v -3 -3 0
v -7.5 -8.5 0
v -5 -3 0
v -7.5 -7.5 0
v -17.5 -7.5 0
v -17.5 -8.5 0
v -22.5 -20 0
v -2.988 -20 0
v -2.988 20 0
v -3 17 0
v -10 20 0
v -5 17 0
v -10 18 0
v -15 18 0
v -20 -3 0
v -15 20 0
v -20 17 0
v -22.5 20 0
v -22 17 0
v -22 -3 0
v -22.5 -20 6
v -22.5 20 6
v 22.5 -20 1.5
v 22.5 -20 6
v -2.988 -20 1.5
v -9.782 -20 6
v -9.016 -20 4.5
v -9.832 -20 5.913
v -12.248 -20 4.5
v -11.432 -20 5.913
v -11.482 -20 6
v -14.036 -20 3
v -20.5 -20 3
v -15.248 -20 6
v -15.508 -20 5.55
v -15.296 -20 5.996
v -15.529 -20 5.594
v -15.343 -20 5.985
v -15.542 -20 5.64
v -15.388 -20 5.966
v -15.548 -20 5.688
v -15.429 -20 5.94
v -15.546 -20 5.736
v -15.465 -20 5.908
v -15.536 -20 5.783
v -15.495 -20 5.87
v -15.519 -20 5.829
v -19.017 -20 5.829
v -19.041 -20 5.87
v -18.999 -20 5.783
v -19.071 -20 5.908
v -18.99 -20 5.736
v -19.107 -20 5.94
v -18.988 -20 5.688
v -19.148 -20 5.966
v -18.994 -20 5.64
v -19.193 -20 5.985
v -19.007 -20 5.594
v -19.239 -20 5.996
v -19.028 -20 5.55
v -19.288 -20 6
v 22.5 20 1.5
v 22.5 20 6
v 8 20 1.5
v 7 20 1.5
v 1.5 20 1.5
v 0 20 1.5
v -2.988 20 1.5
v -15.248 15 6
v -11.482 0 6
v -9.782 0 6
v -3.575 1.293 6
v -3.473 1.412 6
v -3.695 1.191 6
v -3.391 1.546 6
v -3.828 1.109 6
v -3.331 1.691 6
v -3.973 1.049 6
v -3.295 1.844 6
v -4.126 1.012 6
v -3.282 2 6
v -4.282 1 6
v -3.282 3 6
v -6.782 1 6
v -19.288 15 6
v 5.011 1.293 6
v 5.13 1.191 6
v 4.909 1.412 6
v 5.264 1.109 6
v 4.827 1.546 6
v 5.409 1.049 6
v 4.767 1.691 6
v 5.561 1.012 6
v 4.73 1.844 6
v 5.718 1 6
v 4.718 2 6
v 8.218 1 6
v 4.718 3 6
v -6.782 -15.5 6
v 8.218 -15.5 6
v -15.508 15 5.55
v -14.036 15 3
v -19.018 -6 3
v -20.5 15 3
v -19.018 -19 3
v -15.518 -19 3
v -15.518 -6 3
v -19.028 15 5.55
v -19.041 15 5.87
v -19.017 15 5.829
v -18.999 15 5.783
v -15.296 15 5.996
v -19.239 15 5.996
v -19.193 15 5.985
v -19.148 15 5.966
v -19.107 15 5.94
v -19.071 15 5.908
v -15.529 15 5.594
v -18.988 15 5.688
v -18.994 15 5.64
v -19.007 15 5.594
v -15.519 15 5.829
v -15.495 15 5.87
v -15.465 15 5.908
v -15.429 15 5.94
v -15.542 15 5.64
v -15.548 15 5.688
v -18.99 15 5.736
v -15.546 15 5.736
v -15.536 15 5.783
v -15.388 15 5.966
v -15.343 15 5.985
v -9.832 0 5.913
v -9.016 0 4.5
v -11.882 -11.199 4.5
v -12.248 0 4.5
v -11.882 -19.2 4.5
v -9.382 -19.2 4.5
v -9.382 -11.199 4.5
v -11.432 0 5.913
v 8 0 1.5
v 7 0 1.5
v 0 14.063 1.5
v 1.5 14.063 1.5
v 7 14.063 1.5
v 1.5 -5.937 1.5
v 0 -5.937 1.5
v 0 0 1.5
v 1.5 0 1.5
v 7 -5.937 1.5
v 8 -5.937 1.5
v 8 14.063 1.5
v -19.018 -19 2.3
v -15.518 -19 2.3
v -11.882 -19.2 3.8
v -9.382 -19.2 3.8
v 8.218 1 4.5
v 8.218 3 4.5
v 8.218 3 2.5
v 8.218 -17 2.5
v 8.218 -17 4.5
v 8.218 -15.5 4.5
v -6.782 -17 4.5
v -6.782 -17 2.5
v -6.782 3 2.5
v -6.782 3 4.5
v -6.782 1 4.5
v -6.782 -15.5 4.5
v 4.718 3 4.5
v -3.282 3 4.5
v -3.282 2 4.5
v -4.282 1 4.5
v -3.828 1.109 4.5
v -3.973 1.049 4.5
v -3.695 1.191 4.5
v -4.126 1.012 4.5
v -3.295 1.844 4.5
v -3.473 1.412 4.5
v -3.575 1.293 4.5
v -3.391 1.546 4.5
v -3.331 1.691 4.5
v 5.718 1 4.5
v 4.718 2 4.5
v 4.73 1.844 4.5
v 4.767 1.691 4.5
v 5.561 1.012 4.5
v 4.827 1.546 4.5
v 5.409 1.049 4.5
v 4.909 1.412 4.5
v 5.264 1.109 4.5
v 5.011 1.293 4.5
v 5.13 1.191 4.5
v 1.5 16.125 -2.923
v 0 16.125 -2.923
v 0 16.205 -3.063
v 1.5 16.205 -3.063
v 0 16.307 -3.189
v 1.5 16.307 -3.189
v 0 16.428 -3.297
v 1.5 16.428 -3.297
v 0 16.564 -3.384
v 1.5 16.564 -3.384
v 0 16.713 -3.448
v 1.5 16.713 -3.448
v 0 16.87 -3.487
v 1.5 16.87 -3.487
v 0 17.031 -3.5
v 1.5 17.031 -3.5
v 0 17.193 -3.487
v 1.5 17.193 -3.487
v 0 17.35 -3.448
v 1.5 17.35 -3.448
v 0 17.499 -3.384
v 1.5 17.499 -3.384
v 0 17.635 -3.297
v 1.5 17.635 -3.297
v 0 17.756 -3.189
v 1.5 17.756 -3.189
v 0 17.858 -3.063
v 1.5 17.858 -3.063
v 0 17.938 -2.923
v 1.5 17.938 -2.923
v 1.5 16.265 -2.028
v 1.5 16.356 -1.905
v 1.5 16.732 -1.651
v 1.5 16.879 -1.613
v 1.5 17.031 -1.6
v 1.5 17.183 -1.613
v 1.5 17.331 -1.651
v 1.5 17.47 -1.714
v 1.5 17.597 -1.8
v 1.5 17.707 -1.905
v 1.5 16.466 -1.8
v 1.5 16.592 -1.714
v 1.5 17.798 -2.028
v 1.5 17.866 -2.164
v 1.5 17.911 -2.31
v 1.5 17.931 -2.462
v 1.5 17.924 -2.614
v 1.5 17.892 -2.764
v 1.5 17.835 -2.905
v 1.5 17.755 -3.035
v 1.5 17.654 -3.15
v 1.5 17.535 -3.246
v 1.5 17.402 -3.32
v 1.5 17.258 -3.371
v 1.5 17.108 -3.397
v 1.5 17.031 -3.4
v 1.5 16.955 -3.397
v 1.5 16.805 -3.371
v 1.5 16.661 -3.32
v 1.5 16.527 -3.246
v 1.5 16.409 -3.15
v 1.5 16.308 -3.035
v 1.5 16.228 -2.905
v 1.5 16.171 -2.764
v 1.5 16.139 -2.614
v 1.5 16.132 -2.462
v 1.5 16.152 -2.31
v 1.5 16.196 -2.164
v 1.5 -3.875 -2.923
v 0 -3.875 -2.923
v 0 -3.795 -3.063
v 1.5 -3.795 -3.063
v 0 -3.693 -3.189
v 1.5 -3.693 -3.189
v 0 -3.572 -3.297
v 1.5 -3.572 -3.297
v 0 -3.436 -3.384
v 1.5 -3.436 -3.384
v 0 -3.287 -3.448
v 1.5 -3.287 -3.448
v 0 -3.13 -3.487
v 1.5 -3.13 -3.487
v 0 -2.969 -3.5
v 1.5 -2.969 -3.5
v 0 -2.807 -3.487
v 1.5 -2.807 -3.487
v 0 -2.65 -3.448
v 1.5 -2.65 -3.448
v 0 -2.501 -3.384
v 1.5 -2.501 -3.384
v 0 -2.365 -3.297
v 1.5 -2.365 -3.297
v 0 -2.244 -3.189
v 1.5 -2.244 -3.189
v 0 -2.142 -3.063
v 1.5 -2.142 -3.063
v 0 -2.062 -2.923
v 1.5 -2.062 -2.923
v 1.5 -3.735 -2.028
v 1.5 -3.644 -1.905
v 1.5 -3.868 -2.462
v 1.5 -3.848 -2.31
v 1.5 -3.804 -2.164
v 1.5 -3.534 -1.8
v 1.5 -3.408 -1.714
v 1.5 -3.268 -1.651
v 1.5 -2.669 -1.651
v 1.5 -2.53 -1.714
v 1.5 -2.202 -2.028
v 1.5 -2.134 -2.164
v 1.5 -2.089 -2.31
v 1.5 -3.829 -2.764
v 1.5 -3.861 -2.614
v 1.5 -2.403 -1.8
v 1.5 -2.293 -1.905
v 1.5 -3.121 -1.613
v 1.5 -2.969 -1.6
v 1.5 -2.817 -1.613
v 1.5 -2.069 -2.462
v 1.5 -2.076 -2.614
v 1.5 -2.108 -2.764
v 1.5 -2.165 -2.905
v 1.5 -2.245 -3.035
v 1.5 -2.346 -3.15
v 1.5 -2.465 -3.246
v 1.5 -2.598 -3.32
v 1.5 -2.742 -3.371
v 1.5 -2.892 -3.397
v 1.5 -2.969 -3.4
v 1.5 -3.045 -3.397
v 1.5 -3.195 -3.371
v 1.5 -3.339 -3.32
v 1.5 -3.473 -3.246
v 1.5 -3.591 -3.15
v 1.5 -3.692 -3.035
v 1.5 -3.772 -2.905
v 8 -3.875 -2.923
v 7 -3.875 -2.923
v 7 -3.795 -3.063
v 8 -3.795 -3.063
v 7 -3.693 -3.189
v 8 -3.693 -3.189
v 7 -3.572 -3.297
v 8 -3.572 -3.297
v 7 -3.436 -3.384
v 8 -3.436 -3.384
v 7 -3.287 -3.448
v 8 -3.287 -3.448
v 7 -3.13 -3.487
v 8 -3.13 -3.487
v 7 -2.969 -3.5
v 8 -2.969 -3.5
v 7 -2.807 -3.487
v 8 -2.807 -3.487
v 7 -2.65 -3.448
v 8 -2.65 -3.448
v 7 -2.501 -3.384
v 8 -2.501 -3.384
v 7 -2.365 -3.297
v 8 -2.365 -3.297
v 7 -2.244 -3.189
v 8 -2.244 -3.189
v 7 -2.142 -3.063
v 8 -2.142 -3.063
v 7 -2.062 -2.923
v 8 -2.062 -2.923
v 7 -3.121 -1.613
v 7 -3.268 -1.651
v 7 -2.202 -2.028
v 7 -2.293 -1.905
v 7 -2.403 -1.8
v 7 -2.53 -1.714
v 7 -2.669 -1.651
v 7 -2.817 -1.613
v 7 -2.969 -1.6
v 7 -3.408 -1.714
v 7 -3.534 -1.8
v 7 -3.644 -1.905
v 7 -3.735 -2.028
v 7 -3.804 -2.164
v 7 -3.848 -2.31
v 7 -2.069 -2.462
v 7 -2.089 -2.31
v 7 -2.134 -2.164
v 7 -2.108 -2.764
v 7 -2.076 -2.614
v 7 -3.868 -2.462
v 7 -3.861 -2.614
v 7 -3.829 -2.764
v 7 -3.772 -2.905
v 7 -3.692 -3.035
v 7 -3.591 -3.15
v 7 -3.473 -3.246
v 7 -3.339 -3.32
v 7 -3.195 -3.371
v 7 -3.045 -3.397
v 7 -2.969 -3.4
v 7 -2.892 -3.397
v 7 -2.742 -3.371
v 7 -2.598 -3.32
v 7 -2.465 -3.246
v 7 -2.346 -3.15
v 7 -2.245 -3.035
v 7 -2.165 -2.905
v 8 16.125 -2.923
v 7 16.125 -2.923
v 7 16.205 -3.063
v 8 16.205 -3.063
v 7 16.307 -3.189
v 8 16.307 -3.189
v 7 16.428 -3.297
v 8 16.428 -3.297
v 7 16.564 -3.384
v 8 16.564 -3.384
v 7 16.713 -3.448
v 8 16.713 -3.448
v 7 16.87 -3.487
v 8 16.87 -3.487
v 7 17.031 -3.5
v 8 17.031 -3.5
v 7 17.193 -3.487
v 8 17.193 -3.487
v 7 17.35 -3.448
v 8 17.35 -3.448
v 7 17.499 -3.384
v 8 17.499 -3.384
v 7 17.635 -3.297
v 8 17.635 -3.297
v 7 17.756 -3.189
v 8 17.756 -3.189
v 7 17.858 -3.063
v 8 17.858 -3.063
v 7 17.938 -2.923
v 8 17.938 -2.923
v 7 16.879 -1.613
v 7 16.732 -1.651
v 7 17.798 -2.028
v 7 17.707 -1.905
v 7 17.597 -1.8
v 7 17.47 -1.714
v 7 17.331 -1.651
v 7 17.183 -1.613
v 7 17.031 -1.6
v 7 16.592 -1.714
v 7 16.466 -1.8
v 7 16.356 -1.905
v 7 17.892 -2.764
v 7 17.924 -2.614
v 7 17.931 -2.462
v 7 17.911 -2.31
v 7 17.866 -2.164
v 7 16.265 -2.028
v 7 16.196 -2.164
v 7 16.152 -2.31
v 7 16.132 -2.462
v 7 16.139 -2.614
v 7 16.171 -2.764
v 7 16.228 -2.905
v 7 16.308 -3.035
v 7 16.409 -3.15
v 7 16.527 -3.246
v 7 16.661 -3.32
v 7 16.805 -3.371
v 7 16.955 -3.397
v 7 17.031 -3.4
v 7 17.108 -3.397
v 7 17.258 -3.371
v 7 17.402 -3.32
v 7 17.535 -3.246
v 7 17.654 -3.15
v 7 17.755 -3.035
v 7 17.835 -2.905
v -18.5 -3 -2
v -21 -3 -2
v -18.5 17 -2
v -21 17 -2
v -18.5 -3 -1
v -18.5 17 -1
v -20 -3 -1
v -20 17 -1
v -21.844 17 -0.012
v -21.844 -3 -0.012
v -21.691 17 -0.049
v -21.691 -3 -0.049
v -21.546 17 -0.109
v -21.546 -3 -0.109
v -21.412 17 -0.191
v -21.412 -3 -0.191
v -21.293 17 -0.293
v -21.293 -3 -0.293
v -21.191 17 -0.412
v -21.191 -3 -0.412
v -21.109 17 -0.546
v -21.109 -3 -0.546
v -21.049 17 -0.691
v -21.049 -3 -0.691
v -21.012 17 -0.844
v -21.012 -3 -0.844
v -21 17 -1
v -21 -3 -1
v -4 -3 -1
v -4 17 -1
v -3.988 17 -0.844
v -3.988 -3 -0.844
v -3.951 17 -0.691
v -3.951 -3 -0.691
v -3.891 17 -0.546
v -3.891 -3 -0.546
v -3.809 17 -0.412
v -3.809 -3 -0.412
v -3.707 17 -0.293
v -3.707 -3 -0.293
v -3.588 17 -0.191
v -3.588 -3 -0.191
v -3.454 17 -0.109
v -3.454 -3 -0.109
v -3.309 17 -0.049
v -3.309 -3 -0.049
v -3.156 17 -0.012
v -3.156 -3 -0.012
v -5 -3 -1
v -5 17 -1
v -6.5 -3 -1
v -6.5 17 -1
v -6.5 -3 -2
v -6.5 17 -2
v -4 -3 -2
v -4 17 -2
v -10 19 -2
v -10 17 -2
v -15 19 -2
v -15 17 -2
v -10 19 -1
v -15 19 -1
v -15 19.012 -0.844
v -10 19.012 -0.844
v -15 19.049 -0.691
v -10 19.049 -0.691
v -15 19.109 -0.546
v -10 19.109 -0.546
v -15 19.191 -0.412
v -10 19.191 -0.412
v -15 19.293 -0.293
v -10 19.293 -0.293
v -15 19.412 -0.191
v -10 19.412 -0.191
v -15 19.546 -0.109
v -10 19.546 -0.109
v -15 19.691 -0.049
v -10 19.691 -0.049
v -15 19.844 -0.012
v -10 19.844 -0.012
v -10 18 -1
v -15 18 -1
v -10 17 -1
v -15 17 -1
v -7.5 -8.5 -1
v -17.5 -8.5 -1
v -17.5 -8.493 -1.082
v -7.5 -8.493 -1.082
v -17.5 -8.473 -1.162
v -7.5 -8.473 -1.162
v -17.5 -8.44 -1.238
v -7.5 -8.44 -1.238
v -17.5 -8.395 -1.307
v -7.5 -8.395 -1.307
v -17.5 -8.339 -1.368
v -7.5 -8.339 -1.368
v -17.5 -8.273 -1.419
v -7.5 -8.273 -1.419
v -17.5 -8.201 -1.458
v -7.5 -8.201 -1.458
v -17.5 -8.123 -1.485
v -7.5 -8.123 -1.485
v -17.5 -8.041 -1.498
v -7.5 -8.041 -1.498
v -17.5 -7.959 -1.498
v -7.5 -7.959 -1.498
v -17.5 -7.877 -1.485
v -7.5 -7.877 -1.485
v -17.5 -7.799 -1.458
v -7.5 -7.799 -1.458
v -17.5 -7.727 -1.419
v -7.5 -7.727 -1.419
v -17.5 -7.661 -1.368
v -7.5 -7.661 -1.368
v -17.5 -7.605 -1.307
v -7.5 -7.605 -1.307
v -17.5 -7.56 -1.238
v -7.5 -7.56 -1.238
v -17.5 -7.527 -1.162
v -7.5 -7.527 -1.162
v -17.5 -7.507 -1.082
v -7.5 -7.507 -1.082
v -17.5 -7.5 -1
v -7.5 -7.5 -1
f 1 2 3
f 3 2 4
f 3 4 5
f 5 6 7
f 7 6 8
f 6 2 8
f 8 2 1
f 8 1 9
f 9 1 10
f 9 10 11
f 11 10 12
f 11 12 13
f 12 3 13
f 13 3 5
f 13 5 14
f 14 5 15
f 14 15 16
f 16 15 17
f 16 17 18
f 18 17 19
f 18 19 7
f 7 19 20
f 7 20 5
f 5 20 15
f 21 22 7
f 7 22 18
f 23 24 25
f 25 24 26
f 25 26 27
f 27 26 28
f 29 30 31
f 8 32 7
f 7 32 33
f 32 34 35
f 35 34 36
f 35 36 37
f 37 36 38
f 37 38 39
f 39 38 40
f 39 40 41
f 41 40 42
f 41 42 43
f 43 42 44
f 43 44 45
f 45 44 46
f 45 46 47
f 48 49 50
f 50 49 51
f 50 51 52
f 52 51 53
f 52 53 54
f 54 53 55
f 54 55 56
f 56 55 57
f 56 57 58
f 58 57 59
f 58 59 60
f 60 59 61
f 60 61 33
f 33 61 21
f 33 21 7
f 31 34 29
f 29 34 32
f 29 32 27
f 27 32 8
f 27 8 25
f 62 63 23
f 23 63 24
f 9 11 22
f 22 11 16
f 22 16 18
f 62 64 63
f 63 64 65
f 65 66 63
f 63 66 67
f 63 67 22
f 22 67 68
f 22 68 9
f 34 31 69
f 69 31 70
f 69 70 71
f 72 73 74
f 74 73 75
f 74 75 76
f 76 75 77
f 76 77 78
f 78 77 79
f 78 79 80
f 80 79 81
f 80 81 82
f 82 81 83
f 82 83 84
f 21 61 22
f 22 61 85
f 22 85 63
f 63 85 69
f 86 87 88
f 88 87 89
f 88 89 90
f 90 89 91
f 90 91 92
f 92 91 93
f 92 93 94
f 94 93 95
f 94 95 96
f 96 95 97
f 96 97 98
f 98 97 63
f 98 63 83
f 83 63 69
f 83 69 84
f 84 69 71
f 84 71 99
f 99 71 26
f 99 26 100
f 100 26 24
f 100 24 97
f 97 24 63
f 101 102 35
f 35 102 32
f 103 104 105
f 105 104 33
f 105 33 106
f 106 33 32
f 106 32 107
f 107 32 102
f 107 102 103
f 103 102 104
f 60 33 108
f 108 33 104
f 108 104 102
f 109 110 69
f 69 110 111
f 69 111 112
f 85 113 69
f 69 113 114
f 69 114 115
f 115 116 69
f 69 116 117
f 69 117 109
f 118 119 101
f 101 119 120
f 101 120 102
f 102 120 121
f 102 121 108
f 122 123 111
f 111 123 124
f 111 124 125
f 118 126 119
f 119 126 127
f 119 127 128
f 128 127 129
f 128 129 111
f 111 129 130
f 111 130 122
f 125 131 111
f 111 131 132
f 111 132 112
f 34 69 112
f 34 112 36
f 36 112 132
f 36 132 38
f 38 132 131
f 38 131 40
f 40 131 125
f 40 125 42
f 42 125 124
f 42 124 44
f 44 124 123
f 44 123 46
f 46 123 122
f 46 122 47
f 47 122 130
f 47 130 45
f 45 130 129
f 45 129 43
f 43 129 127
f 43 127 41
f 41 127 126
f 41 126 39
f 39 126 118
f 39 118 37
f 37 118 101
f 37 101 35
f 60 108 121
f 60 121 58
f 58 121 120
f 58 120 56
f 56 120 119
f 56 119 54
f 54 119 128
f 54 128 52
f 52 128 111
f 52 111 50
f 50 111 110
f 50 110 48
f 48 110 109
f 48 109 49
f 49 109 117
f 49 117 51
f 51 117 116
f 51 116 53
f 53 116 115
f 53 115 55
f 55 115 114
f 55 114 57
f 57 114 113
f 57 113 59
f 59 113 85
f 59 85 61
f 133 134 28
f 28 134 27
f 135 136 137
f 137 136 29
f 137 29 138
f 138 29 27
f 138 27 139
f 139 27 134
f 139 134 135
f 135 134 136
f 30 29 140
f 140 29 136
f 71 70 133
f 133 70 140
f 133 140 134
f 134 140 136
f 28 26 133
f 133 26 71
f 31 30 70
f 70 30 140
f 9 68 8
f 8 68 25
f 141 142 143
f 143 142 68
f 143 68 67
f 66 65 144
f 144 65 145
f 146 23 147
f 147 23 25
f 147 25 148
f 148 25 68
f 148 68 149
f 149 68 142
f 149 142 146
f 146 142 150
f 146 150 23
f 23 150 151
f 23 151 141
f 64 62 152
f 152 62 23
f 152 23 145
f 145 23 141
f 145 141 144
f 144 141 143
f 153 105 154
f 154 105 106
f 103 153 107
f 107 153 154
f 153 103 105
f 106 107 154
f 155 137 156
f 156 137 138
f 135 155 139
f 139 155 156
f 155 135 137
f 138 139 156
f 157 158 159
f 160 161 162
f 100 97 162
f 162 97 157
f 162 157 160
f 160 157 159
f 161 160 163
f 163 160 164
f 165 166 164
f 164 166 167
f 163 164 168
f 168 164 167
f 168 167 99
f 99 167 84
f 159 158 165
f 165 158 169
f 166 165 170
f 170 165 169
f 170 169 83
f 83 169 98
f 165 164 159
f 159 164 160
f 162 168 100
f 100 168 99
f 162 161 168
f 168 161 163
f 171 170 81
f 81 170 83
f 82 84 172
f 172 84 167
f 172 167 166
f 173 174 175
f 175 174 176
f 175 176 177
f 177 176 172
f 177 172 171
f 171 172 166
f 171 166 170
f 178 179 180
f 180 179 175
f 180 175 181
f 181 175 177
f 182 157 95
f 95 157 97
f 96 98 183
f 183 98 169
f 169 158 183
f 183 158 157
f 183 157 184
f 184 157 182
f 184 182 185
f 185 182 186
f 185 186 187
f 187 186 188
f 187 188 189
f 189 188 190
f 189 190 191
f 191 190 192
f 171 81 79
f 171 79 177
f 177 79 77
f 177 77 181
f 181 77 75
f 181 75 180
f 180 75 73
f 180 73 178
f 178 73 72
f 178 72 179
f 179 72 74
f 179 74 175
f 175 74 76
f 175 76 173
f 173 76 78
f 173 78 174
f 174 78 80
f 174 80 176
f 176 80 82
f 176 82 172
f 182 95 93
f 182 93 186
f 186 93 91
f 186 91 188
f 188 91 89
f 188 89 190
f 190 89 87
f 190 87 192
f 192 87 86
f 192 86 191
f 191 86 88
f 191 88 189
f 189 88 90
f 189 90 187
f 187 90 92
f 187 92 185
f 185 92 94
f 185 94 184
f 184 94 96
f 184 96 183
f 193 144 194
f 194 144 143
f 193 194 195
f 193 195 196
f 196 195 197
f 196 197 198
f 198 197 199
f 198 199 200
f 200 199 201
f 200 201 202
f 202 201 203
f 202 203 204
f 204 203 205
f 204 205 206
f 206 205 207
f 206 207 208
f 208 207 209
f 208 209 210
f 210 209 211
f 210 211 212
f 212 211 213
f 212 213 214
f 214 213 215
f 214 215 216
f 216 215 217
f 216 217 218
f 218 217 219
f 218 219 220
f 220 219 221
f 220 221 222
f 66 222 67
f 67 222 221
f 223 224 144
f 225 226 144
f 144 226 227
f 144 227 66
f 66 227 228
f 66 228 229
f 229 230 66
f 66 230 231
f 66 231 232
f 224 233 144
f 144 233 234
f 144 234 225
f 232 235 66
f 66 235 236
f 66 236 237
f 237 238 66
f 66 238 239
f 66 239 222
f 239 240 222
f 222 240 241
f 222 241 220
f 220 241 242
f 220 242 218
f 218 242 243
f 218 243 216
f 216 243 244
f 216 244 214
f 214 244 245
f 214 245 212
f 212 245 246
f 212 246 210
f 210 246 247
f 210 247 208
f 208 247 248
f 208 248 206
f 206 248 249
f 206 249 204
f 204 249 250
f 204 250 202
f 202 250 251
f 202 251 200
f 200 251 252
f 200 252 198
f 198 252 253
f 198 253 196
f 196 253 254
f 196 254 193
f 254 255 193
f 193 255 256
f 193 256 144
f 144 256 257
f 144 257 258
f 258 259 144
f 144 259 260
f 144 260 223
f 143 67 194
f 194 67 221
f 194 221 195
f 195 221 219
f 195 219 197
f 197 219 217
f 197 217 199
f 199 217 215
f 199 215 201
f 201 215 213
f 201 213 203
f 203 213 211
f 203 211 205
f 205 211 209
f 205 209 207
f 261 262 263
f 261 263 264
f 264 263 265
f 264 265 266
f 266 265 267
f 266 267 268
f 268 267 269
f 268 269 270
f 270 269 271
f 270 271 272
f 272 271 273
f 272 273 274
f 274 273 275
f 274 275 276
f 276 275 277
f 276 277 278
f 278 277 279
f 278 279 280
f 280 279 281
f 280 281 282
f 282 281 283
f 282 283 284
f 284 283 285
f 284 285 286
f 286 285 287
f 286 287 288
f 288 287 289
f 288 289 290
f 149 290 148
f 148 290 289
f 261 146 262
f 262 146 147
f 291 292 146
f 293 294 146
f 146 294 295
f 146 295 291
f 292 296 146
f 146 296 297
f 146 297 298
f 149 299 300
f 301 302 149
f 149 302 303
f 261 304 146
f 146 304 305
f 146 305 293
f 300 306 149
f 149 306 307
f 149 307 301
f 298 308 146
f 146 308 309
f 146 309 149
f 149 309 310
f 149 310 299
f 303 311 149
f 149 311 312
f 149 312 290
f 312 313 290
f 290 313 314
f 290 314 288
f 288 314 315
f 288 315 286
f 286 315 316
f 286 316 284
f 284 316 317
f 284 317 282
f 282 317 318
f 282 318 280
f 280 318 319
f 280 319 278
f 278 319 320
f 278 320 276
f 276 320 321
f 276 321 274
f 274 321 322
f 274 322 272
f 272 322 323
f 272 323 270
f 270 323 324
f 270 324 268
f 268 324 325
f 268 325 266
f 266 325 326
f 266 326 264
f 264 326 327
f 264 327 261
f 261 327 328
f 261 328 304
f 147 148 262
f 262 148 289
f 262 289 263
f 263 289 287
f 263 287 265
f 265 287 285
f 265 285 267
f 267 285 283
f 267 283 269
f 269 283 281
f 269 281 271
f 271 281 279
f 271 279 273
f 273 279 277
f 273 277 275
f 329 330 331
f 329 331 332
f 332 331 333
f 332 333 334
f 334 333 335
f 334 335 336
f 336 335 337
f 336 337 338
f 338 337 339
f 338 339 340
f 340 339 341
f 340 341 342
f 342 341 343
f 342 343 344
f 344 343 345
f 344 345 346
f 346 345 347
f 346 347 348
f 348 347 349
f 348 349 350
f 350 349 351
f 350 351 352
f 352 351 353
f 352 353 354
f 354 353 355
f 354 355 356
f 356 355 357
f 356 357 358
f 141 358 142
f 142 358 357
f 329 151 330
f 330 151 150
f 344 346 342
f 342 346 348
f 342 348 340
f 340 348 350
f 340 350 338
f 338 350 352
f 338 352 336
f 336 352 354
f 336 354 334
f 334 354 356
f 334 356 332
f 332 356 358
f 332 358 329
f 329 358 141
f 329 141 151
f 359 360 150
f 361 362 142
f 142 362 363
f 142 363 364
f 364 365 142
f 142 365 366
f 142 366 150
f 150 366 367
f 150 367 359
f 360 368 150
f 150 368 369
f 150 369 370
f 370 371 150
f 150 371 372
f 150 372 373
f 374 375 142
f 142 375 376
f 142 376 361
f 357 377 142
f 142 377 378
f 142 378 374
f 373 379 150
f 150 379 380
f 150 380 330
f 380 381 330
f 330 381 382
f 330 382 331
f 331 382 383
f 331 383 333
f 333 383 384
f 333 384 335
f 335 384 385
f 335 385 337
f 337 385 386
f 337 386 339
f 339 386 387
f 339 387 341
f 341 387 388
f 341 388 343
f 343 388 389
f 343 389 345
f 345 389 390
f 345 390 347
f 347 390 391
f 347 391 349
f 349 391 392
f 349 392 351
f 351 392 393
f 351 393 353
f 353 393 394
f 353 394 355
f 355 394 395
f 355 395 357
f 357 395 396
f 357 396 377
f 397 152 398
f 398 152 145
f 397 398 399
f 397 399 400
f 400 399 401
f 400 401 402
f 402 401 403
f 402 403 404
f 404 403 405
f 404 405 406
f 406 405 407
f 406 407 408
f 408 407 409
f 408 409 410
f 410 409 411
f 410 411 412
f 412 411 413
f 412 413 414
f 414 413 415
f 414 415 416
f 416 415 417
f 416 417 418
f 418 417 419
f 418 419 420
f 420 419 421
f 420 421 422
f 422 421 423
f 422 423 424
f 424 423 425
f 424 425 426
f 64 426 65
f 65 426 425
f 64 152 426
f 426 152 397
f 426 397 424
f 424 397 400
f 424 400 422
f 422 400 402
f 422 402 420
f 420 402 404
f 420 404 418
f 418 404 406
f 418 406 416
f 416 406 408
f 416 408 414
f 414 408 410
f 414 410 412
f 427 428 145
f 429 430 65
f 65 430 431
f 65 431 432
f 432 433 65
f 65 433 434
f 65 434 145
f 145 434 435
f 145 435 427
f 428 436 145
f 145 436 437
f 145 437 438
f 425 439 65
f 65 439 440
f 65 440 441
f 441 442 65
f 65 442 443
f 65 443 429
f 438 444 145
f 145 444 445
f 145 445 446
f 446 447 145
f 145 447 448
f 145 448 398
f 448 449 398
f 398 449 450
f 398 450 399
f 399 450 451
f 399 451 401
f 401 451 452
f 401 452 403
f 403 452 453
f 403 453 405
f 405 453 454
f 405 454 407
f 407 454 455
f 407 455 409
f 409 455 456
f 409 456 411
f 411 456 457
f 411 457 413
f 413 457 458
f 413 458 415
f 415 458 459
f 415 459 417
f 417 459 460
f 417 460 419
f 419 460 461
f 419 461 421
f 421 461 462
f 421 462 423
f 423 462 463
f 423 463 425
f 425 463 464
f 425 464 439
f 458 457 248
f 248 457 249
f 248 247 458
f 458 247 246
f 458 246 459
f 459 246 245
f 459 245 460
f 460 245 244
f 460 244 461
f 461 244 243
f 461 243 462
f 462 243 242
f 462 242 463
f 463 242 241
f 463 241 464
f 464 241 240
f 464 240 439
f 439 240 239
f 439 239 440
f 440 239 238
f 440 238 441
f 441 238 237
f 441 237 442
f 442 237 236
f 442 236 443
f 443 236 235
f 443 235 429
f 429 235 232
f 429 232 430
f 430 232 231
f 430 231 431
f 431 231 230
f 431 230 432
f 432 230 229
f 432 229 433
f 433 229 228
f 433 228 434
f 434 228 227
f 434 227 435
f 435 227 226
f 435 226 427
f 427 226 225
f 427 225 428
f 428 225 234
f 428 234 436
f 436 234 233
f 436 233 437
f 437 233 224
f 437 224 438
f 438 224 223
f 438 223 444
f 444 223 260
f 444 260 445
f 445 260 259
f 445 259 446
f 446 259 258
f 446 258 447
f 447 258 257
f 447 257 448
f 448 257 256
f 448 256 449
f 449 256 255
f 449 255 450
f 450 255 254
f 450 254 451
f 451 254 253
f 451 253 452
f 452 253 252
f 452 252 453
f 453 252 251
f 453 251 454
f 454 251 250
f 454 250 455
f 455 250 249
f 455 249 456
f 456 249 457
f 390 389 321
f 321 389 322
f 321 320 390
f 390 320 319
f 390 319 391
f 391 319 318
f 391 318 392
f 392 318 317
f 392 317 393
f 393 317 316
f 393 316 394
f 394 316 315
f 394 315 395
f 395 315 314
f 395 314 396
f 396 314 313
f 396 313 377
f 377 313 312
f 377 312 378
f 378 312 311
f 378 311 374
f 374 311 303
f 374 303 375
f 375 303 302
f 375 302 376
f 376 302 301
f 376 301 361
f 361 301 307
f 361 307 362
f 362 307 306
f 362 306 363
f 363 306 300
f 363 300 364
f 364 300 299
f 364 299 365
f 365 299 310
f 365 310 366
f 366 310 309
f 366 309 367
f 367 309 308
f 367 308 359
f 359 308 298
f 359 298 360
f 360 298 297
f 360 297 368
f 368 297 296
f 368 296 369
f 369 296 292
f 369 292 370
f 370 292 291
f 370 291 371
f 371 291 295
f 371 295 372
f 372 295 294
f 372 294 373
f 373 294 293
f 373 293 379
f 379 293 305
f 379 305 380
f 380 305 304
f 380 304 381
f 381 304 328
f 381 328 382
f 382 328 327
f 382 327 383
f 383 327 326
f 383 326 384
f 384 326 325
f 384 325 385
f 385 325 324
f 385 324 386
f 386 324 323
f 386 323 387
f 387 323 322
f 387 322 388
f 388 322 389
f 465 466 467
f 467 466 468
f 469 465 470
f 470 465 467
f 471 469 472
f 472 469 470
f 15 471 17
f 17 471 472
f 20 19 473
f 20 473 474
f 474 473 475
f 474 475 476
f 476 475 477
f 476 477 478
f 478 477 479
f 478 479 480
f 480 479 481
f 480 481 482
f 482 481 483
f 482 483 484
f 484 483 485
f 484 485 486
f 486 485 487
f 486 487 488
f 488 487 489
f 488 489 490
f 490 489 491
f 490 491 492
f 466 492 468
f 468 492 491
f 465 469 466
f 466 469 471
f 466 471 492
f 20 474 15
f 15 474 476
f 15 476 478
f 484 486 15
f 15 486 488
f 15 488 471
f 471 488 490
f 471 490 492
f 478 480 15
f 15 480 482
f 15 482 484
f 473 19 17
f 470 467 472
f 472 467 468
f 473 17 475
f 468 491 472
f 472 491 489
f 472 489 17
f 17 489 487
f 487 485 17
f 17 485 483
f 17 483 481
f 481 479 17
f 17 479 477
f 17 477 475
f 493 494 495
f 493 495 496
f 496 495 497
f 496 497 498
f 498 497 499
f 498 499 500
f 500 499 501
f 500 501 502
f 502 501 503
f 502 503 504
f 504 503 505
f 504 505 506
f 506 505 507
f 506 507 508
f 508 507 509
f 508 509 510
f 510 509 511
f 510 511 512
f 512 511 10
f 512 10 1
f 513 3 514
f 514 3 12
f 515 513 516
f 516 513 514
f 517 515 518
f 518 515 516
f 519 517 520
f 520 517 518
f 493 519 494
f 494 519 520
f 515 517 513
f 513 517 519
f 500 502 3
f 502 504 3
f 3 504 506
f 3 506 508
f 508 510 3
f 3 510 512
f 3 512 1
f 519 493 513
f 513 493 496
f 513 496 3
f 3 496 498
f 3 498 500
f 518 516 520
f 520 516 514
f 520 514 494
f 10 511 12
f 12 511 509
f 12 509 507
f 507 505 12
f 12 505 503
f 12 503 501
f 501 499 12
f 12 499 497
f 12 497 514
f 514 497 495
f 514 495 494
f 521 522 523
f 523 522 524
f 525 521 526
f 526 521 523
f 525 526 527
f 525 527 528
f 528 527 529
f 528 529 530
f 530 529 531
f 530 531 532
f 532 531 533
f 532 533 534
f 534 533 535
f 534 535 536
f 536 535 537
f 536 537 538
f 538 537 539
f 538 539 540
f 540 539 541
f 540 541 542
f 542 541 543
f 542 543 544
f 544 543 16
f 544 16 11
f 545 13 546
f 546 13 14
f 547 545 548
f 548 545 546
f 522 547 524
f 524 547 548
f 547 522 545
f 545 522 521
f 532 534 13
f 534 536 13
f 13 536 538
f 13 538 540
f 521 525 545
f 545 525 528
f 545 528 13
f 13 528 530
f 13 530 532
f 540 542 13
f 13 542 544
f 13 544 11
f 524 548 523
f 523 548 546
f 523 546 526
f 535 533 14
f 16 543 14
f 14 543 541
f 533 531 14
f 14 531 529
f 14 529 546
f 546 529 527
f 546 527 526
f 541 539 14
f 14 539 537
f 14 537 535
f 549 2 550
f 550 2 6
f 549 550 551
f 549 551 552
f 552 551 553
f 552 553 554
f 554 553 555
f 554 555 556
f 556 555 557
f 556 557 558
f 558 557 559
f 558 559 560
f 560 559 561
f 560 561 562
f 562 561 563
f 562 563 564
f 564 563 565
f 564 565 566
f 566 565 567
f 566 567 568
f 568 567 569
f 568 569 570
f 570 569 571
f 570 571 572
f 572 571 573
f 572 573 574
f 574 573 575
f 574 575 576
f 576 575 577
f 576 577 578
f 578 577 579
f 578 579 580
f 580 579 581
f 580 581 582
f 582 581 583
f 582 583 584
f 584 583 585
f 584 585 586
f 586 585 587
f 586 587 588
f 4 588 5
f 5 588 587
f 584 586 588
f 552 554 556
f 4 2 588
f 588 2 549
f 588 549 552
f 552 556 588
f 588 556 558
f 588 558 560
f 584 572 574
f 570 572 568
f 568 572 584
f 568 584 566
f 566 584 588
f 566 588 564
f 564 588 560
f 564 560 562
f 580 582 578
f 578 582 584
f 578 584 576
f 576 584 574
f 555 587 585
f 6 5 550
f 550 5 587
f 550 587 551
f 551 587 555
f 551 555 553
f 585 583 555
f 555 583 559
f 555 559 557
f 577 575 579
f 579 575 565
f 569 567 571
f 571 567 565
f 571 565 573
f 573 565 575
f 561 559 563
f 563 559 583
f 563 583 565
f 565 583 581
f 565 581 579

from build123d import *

# Parameters (mm, degrees)
SKETCH1_W           = 45
SKETCH1_H           = 40
BOSS_EXTRUDE1_DEPTH = 6
CUT_EXTRUDE1_DEPTH  = 35
FILLET4_R           = 0.3
CUT_EXTRUDE4_DEPTH  = 20
CHAMFER1_SIZE       = 0.1
SKETCH10_W          = 25.487766081
SKETCH10_H          = 1.5
CUT_EXTRUDE8_DEPTH  = 47.284446632
CUT_EXTRUDE9_DEPTH  = 1.75
CUT_EXTRUDE10_DEPTH = 1.25
SKETCH13_W          = 15
SKETCH13_H          = 20
CUT_EXTRUDE11_DEPTH = 3.5
SKETCH14_W          = 15
SKETCH14_H          = 1.5
SKETCH14_W_2        = 3.5
SKETCH14_H_2        = 2
BOSS_EXTRUDE2_DEPTH = 1.5
FILLET5_R           = 1
SKETCH15_R          = 0.9
BOSS_EXTRUDE3_DEPTH = 1.5
BOSS_EXTRUDE4_START = 7
SKETCH15_3_R        = 0.9
BOSS_EXTRUDE4_DEPTH = 1
SKETCH15_4_R        = 0.9
BOSS_EXTRUDE5_DEPTH = 8
BOSS_EXTRUDE6_START = -3
BOSS_EXTRUDE6_DEPTH = 20
BOSS_EXTRUDE7_DEPTH = 2.5
BOSS_EXTRUDE8_DEPTH = 5


with BuildPart() as part:
    # Sketch1 → Boss-Extrude1 (new body)
    with BuildSketch(Plane.XY):
        Rectangle(SKETCH1_W, SKETCH1_H)
    extrude(amount=BOSS_EXTRUDE1_DEPTH)

    # Sketch2 → Cut-Extrude1 (cut)
    with BuildSketch(Plane.XZ.offset(20)):
        Polygon((-15.767949192, 6), (-14.035898385, 3), (-20.5, 3), (-18.767949192, 6), align=None)
    extrude(amount=-CUT_EXTRUDE1_DEPTH, mode=Mode.SUBTRACT)

    # Fillet4
    fillet4_edges = [part.edges().sort_by_distance(p)[0] for p in [
        (-18.767949192, -2.5, 6),
        (-15.767949192, -2.5, 6),
    ]]
    fillet(fillet4_edges, radius=FILLET4_R)

    # Sketch5 → Cut-Extrude4 (cut)
    with BuildSketch(Plane.XZ.offset(20)):
        Polygon((-9.882308546, 6), (-9.016283143, 4.5), (-12.24833395, 4.5), (-11.382308546, 6), align=None)
    extrude(amount=-CUT_EXTRUDE4_DEPTH, mode=Mode.SUBTRACT)

    # Chamfer1
    chamfer1_edges = [part.edges().sort_by_distance(p)[0] for p in [
        (-11.382308546, -10, 6),
        (-9.882308546, -10, 6),
    ]]
    chamfer(chamfer1_edges, length=CHAMFER1_SIZE)

    # Sketch10 → Cut-Extrude8 (cut, through all)
    with BuildSketch(Plane.XZ.offset(20)):
        with Locations((9.756116959, 0.75)):
            Rectangle(SKETCH10_W, SKETCH10_H)
    extrude(amount=-CUT_EXTRUDE8_DEPTH, mode=Mode.SUBTRACT)

    # Sketch11 → Cut-Extrude9 (cut, symmetric)
    with BuildSketch(Plane(origin=(-17.267949192, 0, 0), x_dir=(0, 0, -1), z_dir=(1, 0, 0))):
        Polygon((-3, -19), (-3, -6), (-2.3, -19), align=None)
    extrude(amount=CUT_EXTRUDE9_DEPTH, both=True, mode=Mode.SUBTRACT)

    # Sketch12 → Cut-Extrude10 (cut, symmetric)
    with BuildSketch(Plane(origin=(-10.632308546, 0, 0), x_dir=(0, 0, -1), z_dir=(1, 0, 0))):
        Polygon((-4.5, -19.2), (-4.5, -11.198963388), (-3.8, -19.2), align=None)
    extrude(amount=CUT_EXTRUDE10_DEPTH, both=True, mode=Mode.SUBTRACT)

    # Sketch13 → Cut-Extrude11 (cut)
    with BuildSketch(Plane.XY.offset(6)):
        with Locations((0.717691454, -7)):
            Rectangle(SKETCH13_W, SKETCH13_H)
    extrude(amount=-CUT_EXTRUDE11_DEPTH, mode=Mode.SUBTRACT)

    # Sketch14 → Boss-Extrude2 (add)
    with BuildSketch(Plane.XY.offset(6)):
        with Locations((0.717691454, -16.25)):
            Rectangle(SKETCH14_W, SKETCH14_H)
        with Locations((-5.032308546, 2)):
            Rectangle(SKETCH14_W_2, SKETCH14_H_2)
        with Locations((6.467691454, 2)):
            Rectangle(SKETCH14_W_2, SKETCH14_H_2)
    extrude(amount=-BOSS_EXTRUDE2_DEPTH)

    # Fillet5
    fillet5_edges = [part.edges().sort_by_distance(p)[0] for p in [
        (-3.282308546, 1, 5.25),
        (4.717691454, 1, 5.25),
    ]]
    fillet(fillet5_edges, radius=FILLET5_R)

    # Sketch15 → Boss-Extrude3 (add)
    # profile 1 of 2: a face of its own
    with BuildSketch(Plane(origin=(0, 0, 0), x_dir=(0, 0, -1), z_dir=(1, 0, 0))):
        with BuildLine():
            Line((2.922618262, 16.125083661), (-1.5, 14.062782897))
            Line((-1.5, 14.062782897), (-1.5, 20))
            Line((-1.5, 20), (2.922618262, 17.937699235))
            ThreePointArc((2.922618262, 17.937699235), (3.5, 17.031391448), (2.922618262, 16.125083661))
        make_face()
        with Locations((2.5, 17.031391448)):
            Circle(SKETCH15_R, mode=Mode.SUBTRACT)
    # profile 2 of 2: a face of its own
    with BuildSketch(Plane(origin=(0, 0, 0), x_dir=(0, 0, -1), z_dir=(1, 0, 0))):
        with BuildLine():
            ThreePointArc((2.922618262, -2.062300765), (3.5, -2.968608552), (2.922618262, -3.874916339))
            Line((2.922618262, -3.874916339), (-1.5, -5.937217103))
            Line((-1.5, -5.937217103), (-1.5, 0))
            Line((-1.5, 0), (2.922618262, -2.062300765))
        make_face()
        with Locations((2.5, -2.968608552)):
            Circle(SKETCH15_R, mode=Mode.SUBTRACT)
    extrude(amount=BOSS_EXTRUDE3_DEPTH)

    # Sketch15<3> → Boss-Extrude4 (add)
    # profile 1 of 2: a face of its own
    with BuildSketch(Plane(origin=(0, 0, 0), x_dir=(0, 0, -1), z_dir=(1, 0, 0)).offset(BOSS_EXTRUDE4_START)):
        with BuildLine():
            ThreePointArc((2.922618262, -2.062300765), (3.5, -2.968608552), (2.922618262, -3.874916339))
            Line((2.922618262, -3.874916339), (-1.5, -5.937217103))
            Line((-1.5, -5.937217103), (-1.5, 0))
            Line((-1.5, 0), (2.922618262, -2.062300765))
        make_face()
        with Locations((2.5, -2.968608552)):
            Circle(SKETCH15_3_R, mode=Mode.SUBTRACT)
    # profile 2 of 2: a face of its own
    with BuildSketch(Plane(origin=(0, 0, 0), x_dir=(0, 0, -1), z_dir=(1, 0, 0)).offset(BOSS_EXTRUDE4_START)):
        with BuildLine():
            Line((2.922618262, 16.125083661), (-1.5, 14.062782897))
            Line((-1.5, 14.062782897), (-1.5, 20))
            Line((-1.5, 20), (2.922618262, 17.937699235))
            ThreePointArc((2.922618262, 17.937699235), (3.5, 17.031391448), (2.922618262, 16.125083661))
        make_face()
        with Locations((2.5, 17.031391448)):
            Circle(SKETCH15_3_R, mode=Mode.SUBTRACT)
    extrude(amount=BOSS_EXTRUDE4_DEPTH)

    # Sketch15<4> → Boss-Extrude5 (add)
    with BuildSketch(Plane(origin=(0, 0, 0), x_dir=(0, 0, -1), z_dir=(1, 0, 0))):
        with Locations((2.5, 17.031391448)):
            Circle(SKETCH15_4_R)
        with Locations((2.5, -2.968608552)):
            Circle(SKETCH15_4_R)
    extrude(amount=BOSS_EXTRUDE5_DEPTH)

    # Sketch16 → Boss-Extrude6 (add)
    with BuildSketch(Plane(origin=(0, 20, 0), x_dir=(1, 0, 0), z_dir=(0, 1, 0)).offset(BOSS_EXTRUDE6_START)):
        with BuildLine():
            Line((-21, 1), (-21, 2))
            Line((-21, 2), (-18.5, 2))
            Line((-18.5, 2), (-18.5, 1))
            Line((-18.5, 1), (-20, 1))
            Line((-20, 1), (-20, 0))
            Line((-20, 0), (-22, 0))
            ThreePointArc((-22, 0), (-21.292893219, 0.292893219), (-21, 1))
        make_face()
        with BuildLine():
            Line((-5, 0), (-3, 0))
            ThreePointArc((-3, 0), (-3.707106781, 0.292893219), (-4, 1))
            Line((-4, 1), (-4, 2))
            Line((-4, 2), (-6.5, 2))
            Line((-6.5, 2), (-6.5, 1))
            Line((-6.5, 1), (-5, 1))
            Line((-5, 1), (-5, 0))
        make_face()
    extrude(amount=-BOSS_EXTRUDE6_DEPTH)

    # Sketch18 → Boss-Extrude7 (add, symmetric)
    with BuildSketch(Plane(origin=(-12.5, 0, 0), x_dir=(0, 0, 1), z_dir=(1, 0, 0))):
        with BuildLine():
            Line((-1, -19), (-2, -19))
            Line((-2, -19), (-2, -17))
            Line((-2, -17), (-1, -17))
            Line((-1, -17), (-1, -18))
            Line((-1, -18), (0, -18))
            Line((0, -18), (0, -20))
            ThreePointArc((0, -20), (-0.292893219, -19.292893219), (-1, -19))
        make_face()
    extrude(amount=BOSS_EXTRUDE7_DEPTH, both=True)

    # Sketch19 → Boss-Extrude8 (add, symmetric)
    with BuildSketch(Plane(origin=(-12.5, 0, 0), x_dir=(0, 0, -1), z_dir=(1, 0, 0))):
        with BuildLine():
            Line((0, -7.5), (1, -7.5))
            ThreePointArc((1, -7.5), (1.5, -8), (1, -8.5))
            Line((1, -8.5), (0, -8.5))
            Line((0, -8.5), (0, -7.5))
        make_face()
    extrude(amount=BOSS_EXTRUDE8_DEPTH, both=True)


solid = part.part
